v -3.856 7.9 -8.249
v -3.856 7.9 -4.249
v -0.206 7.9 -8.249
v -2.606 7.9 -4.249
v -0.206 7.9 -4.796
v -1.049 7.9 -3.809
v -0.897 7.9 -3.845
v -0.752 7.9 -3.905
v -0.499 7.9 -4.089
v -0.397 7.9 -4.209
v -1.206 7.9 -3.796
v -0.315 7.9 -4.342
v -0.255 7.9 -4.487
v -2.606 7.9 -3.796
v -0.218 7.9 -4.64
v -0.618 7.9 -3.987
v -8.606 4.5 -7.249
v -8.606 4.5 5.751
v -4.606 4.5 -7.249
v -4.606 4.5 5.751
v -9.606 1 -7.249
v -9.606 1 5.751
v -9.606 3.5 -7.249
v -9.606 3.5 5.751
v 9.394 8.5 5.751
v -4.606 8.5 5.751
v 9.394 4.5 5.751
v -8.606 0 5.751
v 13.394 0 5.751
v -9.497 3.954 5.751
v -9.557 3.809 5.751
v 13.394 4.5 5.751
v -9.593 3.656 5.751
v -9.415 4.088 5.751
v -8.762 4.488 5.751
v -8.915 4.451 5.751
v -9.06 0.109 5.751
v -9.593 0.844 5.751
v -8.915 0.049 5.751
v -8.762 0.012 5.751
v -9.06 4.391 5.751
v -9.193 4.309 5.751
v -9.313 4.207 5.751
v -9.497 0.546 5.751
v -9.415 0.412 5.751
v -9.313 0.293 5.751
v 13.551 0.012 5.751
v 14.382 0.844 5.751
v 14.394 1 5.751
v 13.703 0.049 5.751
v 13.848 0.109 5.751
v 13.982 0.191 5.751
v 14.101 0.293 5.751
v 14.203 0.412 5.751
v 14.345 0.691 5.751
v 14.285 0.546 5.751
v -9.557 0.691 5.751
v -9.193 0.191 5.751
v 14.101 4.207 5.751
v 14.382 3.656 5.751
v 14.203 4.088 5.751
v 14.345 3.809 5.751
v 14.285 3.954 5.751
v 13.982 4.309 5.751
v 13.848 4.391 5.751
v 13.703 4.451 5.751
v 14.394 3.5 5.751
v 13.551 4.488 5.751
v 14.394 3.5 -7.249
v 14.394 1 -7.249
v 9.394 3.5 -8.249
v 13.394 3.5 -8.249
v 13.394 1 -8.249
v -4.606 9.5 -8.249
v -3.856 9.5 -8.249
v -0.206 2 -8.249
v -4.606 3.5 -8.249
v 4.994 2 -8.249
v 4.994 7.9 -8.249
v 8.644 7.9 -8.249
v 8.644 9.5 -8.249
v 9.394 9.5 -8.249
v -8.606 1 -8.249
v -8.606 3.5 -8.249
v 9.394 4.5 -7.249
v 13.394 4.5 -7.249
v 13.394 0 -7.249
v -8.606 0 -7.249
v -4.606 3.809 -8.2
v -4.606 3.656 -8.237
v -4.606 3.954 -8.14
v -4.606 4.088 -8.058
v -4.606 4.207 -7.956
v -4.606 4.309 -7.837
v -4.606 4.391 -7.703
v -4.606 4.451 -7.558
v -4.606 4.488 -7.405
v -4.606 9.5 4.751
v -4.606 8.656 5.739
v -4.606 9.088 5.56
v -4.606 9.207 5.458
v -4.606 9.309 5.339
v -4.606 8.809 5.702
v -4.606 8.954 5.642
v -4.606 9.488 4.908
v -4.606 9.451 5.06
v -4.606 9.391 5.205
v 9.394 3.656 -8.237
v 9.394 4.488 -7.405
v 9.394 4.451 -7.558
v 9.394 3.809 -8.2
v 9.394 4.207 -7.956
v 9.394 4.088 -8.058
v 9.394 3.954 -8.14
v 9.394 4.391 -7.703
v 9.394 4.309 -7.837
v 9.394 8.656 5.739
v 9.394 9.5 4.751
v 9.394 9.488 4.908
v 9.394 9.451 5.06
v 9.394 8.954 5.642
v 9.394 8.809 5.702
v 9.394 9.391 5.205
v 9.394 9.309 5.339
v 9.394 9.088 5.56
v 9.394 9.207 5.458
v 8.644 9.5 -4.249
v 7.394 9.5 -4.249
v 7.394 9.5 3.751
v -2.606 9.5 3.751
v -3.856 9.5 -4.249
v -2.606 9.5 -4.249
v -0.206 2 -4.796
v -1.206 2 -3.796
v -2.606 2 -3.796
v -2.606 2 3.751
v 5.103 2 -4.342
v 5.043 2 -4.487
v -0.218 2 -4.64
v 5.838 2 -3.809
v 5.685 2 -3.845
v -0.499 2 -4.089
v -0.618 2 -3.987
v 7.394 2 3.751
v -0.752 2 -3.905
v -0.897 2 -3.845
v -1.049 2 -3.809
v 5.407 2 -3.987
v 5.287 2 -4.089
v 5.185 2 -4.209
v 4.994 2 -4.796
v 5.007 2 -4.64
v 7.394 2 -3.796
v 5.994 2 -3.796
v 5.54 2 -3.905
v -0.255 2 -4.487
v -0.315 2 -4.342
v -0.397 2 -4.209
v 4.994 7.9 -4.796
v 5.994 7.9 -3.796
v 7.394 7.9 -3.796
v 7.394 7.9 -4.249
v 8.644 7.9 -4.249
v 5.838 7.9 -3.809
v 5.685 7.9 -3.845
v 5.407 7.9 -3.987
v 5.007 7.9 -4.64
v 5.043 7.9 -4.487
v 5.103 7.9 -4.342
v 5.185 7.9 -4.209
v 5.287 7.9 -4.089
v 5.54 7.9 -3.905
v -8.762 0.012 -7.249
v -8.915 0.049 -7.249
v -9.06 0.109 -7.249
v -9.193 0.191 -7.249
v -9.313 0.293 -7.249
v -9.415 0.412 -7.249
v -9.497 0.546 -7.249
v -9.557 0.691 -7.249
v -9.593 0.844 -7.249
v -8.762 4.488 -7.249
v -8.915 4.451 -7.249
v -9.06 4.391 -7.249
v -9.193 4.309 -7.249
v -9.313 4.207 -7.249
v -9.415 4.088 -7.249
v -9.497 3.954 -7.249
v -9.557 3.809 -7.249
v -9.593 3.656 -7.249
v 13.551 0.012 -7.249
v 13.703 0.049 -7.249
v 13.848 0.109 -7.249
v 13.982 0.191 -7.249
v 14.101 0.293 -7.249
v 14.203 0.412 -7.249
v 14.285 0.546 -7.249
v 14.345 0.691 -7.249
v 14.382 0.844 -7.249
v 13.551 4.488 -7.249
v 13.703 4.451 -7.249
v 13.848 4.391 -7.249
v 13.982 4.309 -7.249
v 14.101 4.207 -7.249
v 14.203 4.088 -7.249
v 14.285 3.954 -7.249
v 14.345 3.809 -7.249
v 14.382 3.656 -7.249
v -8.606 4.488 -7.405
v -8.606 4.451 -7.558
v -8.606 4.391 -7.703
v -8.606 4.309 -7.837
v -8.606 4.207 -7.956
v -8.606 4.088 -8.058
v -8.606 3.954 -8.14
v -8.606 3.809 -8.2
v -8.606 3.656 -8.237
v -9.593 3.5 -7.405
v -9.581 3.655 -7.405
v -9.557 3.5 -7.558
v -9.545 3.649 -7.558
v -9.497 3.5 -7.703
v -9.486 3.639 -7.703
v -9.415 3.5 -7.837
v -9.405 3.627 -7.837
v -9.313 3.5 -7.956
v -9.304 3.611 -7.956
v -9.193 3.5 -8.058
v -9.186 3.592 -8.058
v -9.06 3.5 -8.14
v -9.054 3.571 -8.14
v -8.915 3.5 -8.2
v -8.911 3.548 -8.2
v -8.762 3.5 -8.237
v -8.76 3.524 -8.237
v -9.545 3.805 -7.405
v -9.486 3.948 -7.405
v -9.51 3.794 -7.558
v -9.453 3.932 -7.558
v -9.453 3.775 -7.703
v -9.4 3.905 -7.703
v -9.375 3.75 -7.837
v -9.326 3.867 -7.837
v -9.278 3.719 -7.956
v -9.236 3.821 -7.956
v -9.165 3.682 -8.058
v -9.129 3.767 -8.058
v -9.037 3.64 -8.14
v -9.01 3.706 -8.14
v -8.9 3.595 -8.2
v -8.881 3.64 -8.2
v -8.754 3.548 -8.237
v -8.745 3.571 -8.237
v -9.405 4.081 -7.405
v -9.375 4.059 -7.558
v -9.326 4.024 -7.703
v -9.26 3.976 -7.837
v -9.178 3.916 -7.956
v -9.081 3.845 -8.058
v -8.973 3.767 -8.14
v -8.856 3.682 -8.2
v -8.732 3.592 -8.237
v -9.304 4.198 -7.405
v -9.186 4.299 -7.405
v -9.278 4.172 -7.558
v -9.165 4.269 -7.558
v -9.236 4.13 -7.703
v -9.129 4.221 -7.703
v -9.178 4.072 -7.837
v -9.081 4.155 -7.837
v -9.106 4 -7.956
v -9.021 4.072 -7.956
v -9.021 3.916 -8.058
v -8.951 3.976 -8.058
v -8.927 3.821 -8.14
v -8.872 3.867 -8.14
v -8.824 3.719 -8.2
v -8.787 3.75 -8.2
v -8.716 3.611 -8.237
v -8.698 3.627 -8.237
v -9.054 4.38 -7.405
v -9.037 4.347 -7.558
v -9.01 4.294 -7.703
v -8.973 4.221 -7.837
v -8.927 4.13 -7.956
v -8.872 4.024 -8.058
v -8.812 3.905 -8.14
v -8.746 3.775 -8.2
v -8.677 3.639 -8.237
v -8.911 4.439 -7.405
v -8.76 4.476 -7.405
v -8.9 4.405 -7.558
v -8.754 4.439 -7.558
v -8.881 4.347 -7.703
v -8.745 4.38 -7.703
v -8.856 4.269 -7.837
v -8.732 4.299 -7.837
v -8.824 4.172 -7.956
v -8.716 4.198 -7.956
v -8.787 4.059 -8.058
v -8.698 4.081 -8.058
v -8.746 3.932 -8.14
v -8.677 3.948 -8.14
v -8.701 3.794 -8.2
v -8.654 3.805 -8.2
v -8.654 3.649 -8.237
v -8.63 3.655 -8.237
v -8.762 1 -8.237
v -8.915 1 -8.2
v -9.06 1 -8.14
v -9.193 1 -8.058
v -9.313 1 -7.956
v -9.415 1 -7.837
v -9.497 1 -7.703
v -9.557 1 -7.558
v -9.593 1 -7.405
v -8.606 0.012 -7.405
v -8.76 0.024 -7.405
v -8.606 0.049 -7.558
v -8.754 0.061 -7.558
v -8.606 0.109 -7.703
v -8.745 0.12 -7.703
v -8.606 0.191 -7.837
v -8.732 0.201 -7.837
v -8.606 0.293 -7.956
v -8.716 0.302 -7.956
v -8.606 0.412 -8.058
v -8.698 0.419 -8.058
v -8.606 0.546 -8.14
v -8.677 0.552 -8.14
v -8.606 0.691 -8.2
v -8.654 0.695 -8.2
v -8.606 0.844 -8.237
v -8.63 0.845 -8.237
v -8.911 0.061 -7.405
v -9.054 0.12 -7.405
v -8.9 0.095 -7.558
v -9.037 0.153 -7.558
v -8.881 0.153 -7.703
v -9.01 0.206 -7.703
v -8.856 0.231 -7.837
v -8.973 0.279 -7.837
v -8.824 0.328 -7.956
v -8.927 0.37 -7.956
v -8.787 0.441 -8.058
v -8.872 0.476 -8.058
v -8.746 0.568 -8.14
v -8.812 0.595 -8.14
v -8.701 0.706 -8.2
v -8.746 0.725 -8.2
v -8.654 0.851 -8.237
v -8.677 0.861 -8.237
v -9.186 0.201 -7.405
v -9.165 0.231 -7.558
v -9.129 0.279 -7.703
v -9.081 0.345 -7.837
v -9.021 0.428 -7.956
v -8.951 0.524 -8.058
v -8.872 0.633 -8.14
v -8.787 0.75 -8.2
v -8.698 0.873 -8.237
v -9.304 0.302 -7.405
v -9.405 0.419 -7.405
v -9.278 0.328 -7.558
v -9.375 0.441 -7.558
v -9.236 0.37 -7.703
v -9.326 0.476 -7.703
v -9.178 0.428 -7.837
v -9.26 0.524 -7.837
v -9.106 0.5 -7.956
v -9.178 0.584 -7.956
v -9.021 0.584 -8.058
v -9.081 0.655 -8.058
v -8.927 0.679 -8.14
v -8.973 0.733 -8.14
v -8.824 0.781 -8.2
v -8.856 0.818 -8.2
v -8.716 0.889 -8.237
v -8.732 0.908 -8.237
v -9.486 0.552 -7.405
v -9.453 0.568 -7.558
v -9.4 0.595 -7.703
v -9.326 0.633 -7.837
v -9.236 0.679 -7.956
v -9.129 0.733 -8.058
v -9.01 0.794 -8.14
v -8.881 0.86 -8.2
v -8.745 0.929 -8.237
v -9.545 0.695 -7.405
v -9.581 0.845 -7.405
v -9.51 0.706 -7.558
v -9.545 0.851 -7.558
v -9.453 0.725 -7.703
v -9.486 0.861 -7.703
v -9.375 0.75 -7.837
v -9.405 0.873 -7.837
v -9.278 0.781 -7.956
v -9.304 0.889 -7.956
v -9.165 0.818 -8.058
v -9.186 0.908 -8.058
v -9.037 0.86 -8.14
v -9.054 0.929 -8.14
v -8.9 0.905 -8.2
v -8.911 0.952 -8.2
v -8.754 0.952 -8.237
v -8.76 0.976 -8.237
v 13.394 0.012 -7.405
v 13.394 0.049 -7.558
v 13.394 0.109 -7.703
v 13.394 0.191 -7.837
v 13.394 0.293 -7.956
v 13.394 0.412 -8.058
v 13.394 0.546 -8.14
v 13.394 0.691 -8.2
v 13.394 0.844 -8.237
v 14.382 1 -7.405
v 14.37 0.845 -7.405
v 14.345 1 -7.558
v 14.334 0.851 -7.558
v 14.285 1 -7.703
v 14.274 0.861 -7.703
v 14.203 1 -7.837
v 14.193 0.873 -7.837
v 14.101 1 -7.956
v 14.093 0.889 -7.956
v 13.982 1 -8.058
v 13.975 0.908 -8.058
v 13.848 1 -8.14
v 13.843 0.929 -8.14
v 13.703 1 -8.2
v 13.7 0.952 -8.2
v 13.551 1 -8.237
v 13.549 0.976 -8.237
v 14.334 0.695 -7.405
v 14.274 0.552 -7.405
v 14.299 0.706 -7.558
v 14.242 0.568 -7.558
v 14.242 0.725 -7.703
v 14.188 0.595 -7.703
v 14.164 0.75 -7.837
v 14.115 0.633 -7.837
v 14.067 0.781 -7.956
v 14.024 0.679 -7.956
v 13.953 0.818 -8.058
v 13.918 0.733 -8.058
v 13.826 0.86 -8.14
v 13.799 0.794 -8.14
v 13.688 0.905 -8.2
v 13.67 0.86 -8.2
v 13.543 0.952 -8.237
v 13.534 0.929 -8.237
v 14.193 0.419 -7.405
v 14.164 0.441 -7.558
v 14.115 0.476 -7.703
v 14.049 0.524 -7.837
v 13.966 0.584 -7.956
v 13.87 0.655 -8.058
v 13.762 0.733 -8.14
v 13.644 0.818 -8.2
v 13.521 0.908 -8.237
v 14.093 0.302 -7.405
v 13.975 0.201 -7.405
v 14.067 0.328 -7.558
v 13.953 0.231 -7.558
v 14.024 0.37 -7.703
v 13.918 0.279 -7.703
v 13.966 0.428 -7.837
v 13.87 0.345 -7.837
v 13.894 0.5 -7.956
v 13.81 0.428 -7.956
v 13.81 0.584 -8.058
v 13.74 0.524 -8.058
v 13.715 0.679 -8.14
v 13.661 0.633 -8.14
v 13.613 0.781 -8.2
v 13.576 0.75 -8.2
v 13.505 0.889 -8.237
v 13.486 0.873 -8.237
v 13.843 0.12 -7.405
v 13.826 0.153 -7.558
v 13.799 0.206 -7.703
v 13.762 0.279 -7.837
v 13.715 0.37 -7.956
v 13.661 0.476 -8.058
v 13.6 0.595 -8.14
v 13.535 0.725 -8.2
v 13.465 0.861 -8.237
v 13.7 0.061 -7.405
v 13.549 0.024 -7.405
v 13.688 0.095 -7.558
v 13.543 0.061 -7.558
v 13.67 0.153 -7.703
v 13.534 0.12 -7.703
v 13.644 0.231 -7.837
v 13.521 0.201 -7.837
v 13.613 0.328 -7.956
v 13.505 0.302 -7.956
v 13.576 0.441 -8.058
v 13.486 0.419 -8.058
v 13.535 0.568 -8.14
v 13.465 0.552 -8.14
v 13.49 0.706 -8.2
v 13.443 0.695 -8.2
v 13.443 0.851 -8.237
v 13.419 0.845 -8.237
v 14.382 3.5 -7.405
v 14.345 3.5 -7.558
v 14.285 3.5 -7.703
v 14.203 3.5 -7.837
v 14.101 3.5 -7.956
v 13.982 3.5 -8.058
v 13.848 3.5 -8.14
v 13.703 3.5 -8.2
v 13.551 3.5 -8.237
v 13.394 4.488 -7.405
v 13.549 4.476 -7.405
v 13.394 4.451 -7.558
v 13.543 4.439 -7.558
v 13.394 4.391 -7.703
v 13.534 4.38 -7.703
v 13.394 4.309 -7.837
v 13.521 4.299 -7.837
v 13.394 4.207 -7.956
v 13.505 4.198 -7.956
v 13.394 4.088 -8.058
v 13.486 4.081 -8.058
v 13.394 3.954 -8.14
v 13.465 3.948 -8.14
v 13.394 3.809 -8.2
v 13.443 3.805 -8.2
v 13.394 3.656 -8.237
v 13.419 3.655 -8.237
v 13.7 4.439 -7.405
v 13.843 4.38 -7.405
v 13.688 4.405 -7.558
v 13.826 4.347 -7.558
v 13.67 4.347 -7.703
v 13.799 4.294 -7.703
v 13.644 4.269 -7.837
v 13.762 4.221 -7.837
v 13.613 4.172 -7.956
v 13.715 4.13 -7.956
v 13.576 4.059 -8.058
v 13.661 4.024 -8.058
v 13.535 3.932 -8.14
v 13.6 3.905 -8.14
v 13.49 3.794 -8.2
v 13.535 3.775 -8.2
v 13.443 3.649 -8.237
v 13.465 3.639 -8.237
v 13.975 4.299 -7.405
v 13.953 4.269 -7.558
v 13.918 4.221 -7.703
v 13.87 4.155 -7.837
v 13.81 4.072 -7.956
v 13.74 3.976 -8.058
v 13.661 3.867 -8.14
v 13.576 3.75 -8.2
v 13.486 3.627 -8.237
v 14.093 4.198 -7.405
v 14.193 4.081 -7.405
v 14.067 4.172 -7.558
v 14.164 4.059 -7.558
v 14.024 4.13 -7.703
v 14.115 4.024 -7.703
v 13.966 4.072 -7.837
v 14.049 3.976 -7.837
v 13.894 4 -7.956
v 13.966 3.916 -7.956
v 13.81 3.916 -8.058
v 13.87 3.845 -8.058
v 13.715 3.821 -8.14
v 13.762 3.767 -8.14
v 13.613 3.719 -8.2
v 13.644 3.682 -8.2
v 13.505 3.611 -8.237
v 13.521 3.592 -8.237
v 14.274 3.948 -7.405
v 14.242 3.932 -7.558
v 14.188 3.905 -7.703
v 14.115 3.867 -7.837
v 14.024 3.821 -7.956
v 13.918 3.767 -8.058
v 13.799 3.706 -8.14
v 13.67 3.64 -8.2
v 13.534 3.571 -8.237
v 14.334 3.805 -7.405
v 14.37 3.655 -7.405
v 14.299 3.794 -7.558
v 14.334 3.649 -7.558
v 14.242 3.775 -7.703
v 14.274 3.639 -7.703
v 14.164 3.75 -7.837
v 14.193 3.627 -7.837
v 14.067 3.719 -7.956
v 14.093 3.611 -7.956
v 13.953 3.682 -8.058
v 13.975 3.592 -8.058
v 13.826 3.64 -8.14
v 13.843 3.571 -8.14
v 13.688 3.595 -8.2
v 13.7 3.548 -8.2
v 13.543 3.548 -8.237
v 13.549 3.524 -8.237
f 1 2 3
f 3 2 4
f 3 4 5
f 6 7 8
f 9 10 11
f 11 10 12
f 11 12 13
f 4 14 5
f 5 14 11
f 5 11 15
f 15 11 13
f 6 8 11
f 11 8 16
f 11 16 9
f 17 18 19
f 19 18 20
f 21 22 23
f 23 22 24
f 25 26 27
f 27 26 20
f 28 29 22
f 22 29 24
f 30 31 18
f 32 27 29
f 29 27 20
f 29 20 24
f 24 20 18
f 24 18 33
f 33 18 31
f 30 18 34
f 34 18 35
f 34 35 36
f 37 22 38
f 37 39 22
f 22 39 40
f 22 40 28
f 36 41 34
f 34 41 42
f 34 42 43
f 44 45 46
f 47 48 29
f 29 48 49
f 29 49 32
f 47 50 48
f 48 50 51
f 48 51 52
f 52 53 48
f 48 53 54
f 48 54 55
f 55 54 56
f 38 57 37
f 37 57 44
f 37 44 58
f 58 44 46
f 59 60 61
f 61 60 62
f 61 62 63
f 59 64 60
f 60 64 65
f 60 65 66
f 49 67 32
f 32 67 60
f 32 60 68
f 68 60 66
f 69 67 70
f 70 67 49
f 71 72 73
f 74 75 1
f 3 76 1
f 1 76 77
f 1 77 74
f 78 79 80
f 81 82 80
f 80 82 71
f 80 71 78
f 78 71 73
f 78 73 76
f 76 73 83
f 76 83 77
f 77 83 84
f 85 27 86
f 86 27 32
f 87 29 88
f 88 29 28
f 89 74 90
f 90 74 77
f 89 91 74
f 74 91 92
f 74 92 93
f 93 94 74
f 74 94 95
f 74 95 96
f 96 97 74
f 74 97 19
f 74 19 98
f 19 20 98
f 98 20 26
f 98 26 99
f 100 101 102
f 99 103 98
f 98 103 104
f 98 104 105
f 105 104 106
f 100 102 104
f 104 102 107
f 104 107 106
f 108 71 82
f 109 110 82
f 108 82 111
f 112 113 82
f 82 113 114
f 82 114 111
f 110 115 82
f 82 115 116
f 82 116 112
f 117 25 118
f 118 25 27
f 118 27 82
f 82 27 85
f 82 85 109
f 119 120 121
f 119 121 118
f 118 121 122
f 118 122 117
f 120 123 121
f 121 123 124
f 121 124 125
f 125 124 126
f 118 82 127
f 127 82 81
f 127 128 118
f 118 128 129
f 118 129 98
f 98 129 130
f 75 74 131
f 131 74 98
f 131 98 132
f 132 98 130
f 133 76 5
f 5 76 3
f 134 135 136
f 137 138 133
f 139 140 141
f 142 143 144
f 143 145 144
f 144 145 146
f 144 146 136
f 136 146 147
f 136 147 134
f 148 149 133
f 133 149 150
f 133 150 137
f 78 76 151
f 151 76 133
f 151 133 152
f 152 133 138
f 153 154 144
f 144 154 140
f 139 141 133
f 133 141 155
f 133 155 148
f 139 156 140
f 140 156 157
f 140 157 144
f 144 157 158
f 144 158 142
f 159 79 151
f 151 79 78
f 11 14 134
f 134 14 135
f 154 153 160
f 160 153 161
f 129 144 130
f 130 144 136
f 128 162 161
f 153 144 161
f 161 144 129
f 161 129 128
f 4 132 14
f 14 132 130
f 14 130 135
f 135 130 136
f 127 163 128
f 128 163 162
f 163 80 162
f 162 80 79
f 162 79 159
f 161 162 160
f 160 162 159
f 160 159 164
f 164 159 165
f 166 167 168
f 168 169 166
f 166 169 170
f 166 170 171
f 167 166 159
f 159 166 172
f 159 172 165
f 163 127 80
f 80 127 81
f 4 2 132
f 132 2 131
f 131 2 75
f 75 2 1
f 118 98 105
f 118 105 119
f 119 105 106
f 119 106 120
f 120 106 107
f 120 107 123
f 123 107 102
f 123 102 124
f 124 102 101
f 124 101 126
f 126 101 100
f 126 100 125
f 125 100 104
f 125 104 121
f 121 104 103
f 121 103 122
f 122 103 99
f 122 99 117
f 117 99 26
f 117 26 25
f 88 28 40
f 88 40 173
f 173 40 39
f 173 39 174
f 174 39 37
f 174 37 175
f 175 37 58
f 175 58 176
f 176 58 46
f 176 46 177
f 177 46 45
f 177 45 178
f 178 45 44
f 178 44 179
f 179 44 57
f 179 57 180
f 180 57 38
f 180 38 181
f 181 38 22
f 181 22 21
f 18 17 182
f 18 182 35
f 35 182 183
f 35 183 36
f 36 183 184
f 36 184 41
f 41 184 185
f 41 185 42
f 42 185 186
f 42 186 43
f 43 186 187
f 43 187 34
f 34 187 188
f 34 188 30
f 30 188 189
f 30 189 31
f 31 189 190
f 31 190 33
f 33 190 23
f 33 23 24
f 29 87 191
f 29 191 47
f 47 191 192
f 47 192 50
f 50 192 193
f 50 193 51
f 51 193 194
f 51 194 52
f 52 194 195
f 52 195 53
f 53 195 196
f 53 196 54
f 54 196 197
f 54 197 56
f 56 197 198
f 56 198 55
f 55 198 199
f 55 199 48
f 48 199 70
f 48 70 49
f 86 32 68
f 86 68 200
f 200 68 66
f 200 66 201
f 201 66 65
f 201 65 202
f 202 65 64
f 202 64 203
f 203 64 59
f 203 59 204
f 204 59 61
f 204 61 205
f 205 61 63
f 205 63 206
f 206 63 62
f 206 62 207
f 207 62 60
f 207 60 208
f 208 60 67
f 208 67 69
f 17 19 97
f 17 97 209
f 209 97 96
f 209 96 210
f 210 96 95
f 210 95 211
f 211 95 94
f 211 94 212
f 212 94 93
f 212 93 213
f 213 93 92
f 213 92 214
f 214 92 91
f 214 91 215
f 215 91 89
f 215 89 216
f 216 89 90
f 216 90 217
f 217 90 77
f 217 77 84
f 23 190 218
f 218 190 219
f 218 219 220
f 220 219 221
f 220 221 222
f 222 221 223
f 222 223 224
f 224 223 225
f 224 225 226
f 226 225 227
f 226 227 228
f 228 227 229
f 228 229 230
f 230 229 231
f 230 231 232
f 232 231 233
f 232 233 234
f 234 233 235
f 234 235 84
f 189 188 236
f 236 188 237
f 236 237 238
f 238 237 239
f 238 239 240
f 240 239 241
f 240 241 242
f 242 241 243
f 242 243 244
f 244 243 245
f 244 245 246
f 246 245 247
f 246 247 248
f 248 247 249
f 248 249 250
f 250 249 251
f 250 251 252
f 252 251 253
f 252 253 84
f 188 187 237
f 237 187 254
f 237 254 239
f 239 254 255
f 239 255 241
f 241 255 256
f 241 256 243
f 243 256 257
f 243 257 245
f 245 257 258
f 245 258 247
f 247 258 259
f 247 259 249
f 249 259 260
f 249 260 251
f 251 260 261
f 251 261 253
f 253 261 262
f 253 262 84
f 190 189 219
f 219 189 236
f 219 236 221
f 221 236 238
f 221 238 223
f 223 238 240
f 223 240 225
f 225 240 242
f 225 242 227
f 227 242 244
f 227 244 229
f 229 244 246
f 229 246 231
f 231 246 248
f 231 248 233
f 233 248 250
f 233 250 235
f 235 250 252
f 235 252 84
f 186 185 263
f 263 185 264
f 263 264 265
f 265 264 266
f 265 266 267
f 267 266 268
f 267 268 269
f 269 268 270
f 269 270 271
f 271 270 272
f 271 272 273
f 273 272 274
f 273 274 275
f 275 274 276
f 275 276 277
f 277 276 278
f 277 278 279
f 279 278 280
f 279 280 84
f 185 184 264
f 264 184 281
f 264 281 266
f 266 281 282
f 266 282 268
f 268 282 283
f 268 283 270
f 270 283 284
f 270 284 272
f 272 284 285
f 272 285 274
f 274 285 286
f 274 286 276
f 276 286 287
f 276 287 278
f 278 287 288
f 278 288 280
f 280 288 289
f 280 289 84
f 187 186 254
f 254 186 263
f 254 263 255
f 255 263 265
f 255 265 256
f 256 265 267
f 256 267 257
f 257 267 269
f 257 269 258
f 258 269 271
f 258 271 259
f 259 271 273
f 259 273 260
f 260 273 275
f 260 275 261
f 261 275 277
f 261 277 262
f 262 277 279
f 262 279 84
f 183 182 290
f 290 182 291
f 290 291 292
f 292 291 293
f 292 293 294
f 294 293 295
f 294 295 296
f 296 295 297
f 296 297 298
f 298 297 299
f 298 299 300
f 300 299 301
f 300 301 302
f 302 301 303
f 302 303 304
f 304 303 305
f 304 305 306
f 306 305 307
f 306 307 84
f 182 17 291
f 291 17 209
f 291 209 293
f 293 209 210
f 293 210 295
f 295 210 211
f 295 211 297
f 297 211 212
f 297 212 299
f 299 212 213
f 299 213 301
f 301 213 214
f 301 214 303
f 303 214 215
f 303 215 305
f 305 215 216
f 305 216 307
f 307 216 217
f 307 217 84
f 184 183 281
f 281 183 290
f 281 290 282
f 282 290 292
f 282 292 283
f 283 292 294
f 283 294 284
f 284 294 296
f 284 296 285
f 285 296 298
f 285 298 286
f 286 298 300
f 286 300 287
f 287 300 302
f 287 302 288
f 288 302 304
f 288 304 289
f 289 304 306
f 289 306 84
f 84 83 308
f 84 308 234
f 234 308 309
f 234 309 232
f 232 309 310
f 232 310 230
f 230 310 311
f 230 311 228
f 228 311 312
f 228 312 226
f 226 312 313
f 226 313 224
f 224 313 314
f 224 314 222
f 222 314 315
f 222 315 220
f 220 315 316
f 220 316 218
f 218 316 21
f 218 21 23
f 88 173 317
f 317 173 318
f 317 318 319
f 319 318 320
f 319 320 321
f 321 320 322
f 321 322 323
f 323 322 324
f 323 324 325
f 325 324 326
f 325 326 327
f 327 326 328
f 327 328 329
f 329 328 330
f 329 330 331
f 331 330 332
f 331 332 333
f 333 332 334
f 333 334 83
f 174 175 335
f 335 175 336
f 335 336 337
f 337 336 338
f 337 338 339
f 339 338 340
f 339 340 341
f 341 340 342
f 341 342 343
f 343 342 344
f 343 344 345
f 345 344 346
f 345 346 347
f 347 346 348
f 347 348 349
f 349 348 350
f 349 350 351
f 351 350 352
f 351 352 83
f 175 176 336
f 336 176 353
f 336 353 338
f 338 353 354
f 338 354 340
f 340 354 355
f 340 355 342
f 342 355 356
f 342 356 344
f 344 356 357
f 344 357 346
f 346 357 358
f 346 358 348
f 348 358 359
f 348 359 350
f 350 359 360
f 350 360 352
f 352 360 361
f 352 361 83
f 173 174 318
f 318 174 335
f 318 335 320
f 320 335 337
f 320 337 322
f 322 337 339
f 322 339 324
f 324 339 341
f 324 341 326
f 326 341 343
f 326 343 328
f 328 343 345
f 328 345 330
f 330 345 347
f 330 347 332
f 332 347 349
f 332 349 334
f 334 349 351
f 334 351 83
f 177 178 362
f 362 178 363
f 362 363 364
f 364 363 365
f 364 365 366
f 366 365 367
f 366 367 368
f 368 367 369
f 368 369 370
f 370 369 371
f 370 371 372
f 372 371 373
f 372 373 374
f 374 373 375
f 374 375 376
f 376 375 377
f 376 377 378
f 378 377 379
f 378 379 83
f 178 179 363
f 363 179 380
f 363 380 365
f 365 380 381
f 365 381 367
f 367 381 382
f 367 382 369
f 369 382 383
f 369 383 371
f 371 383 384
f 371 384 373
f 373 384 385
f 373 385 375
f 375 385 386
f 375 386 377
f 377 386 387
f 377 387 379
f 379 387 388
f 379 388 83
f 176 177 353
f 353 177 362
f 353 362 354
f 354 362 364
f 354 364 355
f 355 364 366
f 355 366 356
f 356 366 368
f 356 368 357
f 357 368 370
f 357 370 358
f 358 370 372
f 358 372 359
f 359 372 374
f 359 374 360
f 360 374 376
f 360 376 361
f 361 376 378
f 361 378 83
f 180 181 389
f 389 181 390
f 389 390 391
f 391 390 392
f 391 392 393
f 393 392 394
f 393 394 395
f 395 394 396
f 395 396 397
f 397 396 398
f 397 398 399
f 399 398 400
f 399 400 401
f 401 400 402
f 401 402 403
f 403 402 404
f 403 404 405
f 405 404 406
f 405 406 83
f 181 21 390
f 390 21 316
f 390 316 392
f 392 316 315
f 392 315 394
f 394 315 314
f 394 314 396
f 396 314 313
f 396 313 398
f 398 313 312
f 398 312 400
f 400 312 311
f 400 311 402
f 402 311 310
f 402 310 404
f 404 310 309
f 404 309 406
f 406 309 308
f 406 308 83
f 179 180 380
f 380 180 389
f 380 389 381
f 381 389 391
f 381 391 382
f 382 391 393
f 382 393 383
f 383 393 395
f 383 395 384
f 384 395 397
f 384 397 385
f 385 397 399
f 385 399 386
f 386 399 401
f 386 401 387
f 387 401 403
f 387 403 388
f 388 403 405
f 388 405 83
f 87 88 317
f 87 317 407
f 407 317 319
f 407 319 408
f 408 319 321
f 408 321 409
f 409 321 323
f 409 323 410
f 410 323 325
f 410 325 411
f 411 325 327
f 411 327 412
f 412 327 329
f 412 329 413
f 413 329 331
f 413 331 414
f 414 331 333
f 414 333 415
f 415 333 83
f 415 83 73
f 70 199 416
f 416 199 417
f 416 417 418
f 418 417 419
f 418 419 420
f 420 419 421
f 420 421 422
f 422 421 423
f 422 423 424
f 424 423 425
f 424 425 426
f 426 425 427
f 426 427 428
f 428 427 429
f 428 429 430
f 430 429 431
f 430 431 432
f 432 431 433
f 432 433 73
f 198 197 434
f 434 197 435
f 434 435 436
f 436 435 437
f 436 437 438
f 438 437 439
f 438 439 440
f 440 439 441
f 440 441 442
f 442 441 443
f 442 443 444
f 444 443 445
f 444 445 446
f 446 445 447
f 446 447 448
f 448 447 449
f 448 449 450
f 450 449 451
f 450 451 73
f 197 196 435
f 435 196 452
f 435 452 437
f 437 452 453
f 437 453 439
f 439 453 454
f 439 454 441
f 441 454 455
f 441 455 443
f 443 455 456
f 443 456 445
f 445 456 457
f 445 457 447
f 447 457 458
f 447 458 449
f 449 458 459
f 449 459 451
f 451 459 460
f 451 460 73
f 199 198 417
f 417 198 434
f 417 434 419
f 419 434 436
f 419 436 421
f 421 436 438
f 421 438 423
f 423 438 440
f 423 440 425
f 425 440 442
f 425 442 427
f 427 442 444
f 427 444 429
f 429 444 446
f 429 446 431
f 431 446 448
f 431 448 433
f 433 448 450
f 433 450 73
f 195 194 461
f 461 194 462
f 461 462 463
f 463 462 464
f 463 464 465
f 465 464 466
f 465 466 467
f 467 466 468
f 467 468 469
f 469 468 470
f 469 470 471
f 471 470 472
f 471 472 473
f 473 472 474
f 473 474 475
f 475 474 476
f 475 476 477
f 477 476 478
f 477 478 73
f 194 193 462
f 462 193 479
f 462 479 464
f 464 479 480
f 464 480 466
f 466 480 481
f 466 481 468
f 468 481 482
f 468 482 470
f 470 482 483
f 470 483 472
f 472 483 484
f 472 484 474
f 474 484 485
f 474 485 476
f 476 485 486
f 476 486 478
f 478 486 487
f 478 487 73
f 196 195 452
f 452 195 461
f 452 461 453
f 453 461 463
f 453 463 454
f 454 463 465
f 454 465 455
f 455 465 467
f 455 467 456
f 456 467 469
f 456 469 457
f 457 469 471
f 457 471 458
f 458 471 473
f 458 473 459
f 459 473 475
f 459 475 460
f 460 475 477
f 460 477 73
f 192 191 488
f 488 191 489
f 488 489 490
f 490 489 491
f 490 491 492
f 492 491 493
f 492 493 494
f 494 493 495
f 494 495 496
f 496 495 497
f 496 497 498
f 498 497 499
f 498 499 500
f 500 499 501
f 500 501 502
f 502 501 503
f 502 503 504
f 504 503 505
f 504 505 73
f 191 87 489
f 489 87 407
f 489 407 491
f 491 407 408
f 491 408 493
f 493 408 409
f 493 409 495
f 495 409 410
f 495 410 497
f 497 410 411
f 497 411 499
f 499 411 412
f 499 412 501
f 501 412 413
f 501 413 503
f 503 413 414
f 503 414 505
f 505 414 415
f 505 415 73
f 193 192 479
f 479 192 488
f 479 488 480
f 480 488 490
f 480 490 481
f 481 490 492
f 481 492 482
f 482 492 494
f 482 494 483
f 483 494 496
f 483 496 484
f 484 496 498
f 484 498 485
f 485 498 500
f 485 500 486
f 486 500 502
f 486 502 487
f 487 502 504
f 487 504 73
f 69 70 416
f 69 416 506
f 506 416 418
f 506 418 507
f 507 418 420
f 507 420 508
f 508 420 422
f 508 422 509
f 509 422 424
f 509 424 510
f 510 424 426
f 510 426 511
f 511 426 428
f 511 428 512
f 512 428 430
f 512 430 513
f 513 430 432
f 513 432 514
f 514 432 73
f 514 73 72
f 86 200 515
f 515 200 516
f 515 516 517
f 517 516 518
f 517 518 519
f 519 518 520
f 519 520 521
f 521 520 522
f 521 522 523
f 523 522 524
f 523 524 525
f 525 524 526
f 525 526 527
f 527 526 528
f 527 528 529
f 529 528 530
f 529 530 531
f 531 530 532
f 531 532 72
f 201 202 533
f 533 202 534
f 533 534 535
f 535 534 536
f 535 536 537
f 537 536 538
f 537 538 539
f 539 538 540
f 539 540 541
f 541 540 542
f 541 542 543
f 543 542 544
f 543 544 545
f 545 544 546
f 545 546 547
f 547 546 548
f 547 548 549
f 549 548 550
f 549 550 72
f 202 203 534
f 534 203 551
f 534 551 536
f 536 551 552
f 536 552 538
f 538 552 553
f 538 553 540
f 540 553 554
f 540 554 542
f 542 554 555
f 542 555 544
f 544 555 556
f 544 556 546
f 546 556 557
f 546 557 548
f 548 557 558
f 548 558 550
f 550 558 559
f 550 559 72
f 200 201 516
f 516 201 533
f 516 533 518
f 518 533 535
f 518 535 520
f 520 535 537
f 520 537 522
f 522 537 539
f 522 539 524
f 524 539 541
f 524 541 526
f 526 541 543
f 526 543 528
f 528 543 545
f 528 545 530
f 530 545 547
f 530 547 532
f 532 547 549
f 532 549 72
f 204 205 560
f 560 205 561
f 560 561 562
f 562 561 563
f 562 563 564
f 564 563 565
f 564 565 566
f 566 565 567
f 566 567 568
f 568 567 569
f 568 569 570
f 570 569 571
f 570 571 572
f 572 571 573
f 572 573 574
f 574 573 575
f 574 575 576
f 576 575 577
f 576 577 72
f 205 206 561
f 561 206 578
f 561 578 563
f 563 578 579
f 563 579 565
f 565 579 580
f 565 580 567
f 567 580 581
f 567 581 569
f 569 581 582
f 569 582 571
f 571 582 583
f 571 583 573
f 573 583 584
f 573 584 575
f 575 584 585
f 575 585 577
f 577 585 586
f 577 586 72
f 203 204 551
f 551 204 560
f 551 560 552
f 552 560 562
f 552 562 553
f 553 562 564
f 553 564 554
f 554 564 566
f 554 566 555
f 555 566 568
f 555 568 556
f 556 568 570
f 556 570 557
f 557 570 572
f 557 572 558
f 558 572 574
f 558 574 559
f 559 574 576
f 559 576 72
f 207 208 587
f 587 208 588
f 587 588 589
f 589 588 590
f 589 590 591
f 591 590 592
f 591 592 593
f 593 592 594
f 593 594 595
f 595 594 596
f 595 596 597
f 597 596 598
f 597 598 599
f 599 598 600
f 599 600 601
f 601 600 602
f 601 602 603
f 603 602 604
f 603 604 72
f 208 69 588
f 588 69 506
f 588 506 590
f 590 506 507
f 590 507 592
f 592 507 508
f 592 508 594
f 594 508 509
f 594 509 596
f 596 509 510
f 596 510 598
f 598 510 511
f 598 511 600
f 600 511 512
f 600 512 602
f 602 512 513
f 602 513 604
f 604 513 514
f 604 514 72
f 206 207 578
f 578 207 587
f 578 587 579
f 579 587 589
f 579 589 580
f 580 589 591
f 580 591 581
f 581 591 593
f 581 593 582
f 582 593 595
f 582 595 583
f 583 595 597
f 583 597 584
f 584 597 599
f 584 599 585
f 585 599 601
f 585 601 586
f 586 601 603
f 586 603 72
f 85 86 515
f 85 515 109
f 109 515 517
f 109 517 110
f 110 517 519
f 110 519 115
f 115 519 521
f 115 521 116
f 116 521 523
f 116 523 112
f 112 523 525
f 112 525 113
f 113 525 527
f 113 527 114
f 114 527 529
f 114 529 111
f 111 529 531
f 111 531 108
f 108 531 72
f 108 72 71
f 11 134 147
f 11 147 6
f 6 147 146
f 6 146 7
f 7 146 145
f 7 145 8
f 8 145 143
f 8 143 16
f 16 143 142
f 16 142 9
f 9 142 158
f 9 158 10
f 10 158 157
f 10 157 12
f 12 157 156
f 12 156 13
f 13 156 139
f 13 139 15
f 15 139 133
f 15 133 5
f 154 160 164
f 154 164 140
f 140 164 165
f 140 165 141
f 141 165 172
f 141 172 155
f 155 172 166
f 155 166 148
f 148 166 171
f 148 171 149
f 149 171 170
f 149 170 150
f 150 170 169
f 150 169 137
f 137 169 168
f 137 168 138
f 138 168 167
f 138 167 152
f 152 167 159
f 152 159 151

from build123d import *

# Parameters (mm, degrees)
SKETCH2_W           = 24
SKETCH2_H           = 14
BOSS_EXTRUDE1_DEPTH = 4.5
SKETCH3_W           = 14
SKETCH3_H           = 14
BOSS_EXTRUDE2_DEPTH = 5
CUT_EXTRUDE1_DEPTH  = 10
SKETCH5_W           = 10
SKETCH5_H           = 7.54749529
CUT_EXTRUDE2_DEPTH  = 7.5
SKETCH6_W           = 12.5
SKETCH6_H           = 1.6
CUT_EXTRUDE3_DEPTH  = 4
SKETCH7_W           = 10.060724294
SKETCH7_H           = 1.6
CUT_EXTRUDE4_DEPTH  = 1
SKETCH8_W           = 0.45250471
SKETCH8_H           = 1.6
CUT_EXTRUDE5_DEPTH  = 0.025884761
SKETCH9_W           = 1
SKETCH9_H           = 1.6
BOSS_EXTRUDE3_DEPTH = 0.086609054
FILLET1_R           = 1
FILLET2_R           = 1
FILLET3_R           = 1


with BuildPart() as part:
    # Sketch2 → Boss-Extrude1 (new body)
    with BuildSketch(Plane(origin=(0, 0, 0), x_dir=(1, 0, 0), z_dir=(0, 1, 0))):
        with Locations((2.394366197, 1.248826291)):
            Rectangle(SKETCH2_W, SKETCH2_H)
    extrude(amount=BOSS_EXTRUDE1_DEPTH)

    # Sketch3 → Boss-Extrude2 (add)
    with BuildSketch(Plane(origin=(0, 4.5, 0), x_dir=(1, 0, 0), z_dir=(0, 1, 0))):
        with Locations((2.394366197, 1.248826291)):
            Rectangle(SKETCH3_W, SKETCH3_H)
    extrude(amount=BOSS_EXTRUDE2_DEPTH)

    # Sketch4 → Cut-Extrude1 (cut)
    with BuildSketch(Plane(origin=(0, 0, -8.248826291), x_dir=(-1, 0, 0), z_dir=(0, 0, -1))):
        Polygon((-4.994366197, 4.2), (-4.994366197, 2), (0.205633803, 2), (0.205633803, 4.2), (0.205633803, 10.153994243), (-4.994366197, 10.153994243), align=None)
    extrude(amount=-CUT_EXTRUDE1_DEPTH, mode=Mode.SUBTRACT)

    # Sketch5 → Cut-Extrude2 (cut)
    with BuildSketch(Plane(origin=(0, 9.5, 0), x_dir=(1, 0, 0), z_dir=(0, 1, 0))):
        with Locations((2.394366197, 0.022573936)):
            Rectangle(SKETCH5_W, SKETCH5_H)
    extrude(amount=-CUT_EXTRUDE2_DEPTH, mode=Mode.SUBTRACT)

    # Sketch6 → Cut-Extrude3 (cut)
    with BuildSketch(Plane(origin=(0, 0, -8.248826291), x_dir=(-1, 0, 0), z_dir=(0, 0, -1))):
        with Locations((-2.394366197, 8.7)):
            Rectangle(SKETCH6_W, SKETCH6_H)
    extrude(amount=-CUT_EXTRUDE3_DEPTH, mode=Mode.SUBTRACT)

    # Sketch7 → Cut-Extrude4 (cut)
    with BuildSketch(Plane(origin=(0, 0, -4.248826291), x_dir=(-1, 0, 0), z_dir=(0, 0, -1))):
        with Locations((-2.33811929, 8.7)):
            Rectangle(SKETCH7_W, SKETCH7_H)
    extrude(amount=-CUT_EXTRUDE4_DEPTH, mode=Mode.SUBTRACT)

    # Sketch8 → Cut-Extrude5 (cut)
    with BuildSketch(Plane.ZY.offset(-7.368481437)):
        with Locations((-4.022573936, 8.7)):
            Rectangle(SKETCH8_W, SKETCH8_H)
    extrude(amount=-CUT_EXTRUDE5_DEPTH, mode=Mode.SUBTRACT)

    # Sketch9 → Boss-Extrude3 (add)
    with BuildSketch(Plane(origin=(-2.692242857, 0, 0), x_dir=(0, 0, -1), z_dir=(1, 0, 0))):
        with Locations((3.748826291, 8.7)):
            Rectangle(SKETCH9_W, SKETCH9_H)
    extrude(amount=BOSS_EXTRUDE3_DEPTH)

    # Fillet1
    fillet1_edges = [part.edges().sort_by_distance(p)[0] for p in [
        (14.394366197, 4.5, -1.248826291),
        (2.394366197, 9.5, 5.751173709),
        (-9.605633803, 4.5, -1.248826291),
        (14.394366197, 0, -1.248826291),
        (-9.605633803, 0, -1.248826291),
    ]]
    fillet(fillet1_edges, radius=FILLET1_R)

    # Fillet2
    fillet2_edges = [part.edges().sort_by_distance(p)[0] for p in [
        (-6.605633803, 4.5, -8.248826291),
        (-9.605633803, 2.25, -8.248826291),
        (2.394366197, 0, -8.248826291),
        (11.394366197, 4.5, -8.248826291),
        (14.394366197, 2.25, -8.248826291),
        (14.101472978, 4.207106781, -8.248826291),
        (14.101472978, 0.292893219, -8.248826291),
        (-9.312740584, 4.207106781, -8.248826291),
        (-9.312740584, 0.292893219, -8.248826291),
    ]]
    fillet(fillet2_edges, radius=FILLET2_R)

    # Fillet3
    fillet3_edges = [part.edges().sort_by_distance(p)[0] for p in [
        (-0.205633803, 4.95, -3.796321581),
        (4.994366197, 4.95, -3.796321581),
    ]]
    fillet(fillet3_edges, radius=FILLET3_R)


solid = part.part
